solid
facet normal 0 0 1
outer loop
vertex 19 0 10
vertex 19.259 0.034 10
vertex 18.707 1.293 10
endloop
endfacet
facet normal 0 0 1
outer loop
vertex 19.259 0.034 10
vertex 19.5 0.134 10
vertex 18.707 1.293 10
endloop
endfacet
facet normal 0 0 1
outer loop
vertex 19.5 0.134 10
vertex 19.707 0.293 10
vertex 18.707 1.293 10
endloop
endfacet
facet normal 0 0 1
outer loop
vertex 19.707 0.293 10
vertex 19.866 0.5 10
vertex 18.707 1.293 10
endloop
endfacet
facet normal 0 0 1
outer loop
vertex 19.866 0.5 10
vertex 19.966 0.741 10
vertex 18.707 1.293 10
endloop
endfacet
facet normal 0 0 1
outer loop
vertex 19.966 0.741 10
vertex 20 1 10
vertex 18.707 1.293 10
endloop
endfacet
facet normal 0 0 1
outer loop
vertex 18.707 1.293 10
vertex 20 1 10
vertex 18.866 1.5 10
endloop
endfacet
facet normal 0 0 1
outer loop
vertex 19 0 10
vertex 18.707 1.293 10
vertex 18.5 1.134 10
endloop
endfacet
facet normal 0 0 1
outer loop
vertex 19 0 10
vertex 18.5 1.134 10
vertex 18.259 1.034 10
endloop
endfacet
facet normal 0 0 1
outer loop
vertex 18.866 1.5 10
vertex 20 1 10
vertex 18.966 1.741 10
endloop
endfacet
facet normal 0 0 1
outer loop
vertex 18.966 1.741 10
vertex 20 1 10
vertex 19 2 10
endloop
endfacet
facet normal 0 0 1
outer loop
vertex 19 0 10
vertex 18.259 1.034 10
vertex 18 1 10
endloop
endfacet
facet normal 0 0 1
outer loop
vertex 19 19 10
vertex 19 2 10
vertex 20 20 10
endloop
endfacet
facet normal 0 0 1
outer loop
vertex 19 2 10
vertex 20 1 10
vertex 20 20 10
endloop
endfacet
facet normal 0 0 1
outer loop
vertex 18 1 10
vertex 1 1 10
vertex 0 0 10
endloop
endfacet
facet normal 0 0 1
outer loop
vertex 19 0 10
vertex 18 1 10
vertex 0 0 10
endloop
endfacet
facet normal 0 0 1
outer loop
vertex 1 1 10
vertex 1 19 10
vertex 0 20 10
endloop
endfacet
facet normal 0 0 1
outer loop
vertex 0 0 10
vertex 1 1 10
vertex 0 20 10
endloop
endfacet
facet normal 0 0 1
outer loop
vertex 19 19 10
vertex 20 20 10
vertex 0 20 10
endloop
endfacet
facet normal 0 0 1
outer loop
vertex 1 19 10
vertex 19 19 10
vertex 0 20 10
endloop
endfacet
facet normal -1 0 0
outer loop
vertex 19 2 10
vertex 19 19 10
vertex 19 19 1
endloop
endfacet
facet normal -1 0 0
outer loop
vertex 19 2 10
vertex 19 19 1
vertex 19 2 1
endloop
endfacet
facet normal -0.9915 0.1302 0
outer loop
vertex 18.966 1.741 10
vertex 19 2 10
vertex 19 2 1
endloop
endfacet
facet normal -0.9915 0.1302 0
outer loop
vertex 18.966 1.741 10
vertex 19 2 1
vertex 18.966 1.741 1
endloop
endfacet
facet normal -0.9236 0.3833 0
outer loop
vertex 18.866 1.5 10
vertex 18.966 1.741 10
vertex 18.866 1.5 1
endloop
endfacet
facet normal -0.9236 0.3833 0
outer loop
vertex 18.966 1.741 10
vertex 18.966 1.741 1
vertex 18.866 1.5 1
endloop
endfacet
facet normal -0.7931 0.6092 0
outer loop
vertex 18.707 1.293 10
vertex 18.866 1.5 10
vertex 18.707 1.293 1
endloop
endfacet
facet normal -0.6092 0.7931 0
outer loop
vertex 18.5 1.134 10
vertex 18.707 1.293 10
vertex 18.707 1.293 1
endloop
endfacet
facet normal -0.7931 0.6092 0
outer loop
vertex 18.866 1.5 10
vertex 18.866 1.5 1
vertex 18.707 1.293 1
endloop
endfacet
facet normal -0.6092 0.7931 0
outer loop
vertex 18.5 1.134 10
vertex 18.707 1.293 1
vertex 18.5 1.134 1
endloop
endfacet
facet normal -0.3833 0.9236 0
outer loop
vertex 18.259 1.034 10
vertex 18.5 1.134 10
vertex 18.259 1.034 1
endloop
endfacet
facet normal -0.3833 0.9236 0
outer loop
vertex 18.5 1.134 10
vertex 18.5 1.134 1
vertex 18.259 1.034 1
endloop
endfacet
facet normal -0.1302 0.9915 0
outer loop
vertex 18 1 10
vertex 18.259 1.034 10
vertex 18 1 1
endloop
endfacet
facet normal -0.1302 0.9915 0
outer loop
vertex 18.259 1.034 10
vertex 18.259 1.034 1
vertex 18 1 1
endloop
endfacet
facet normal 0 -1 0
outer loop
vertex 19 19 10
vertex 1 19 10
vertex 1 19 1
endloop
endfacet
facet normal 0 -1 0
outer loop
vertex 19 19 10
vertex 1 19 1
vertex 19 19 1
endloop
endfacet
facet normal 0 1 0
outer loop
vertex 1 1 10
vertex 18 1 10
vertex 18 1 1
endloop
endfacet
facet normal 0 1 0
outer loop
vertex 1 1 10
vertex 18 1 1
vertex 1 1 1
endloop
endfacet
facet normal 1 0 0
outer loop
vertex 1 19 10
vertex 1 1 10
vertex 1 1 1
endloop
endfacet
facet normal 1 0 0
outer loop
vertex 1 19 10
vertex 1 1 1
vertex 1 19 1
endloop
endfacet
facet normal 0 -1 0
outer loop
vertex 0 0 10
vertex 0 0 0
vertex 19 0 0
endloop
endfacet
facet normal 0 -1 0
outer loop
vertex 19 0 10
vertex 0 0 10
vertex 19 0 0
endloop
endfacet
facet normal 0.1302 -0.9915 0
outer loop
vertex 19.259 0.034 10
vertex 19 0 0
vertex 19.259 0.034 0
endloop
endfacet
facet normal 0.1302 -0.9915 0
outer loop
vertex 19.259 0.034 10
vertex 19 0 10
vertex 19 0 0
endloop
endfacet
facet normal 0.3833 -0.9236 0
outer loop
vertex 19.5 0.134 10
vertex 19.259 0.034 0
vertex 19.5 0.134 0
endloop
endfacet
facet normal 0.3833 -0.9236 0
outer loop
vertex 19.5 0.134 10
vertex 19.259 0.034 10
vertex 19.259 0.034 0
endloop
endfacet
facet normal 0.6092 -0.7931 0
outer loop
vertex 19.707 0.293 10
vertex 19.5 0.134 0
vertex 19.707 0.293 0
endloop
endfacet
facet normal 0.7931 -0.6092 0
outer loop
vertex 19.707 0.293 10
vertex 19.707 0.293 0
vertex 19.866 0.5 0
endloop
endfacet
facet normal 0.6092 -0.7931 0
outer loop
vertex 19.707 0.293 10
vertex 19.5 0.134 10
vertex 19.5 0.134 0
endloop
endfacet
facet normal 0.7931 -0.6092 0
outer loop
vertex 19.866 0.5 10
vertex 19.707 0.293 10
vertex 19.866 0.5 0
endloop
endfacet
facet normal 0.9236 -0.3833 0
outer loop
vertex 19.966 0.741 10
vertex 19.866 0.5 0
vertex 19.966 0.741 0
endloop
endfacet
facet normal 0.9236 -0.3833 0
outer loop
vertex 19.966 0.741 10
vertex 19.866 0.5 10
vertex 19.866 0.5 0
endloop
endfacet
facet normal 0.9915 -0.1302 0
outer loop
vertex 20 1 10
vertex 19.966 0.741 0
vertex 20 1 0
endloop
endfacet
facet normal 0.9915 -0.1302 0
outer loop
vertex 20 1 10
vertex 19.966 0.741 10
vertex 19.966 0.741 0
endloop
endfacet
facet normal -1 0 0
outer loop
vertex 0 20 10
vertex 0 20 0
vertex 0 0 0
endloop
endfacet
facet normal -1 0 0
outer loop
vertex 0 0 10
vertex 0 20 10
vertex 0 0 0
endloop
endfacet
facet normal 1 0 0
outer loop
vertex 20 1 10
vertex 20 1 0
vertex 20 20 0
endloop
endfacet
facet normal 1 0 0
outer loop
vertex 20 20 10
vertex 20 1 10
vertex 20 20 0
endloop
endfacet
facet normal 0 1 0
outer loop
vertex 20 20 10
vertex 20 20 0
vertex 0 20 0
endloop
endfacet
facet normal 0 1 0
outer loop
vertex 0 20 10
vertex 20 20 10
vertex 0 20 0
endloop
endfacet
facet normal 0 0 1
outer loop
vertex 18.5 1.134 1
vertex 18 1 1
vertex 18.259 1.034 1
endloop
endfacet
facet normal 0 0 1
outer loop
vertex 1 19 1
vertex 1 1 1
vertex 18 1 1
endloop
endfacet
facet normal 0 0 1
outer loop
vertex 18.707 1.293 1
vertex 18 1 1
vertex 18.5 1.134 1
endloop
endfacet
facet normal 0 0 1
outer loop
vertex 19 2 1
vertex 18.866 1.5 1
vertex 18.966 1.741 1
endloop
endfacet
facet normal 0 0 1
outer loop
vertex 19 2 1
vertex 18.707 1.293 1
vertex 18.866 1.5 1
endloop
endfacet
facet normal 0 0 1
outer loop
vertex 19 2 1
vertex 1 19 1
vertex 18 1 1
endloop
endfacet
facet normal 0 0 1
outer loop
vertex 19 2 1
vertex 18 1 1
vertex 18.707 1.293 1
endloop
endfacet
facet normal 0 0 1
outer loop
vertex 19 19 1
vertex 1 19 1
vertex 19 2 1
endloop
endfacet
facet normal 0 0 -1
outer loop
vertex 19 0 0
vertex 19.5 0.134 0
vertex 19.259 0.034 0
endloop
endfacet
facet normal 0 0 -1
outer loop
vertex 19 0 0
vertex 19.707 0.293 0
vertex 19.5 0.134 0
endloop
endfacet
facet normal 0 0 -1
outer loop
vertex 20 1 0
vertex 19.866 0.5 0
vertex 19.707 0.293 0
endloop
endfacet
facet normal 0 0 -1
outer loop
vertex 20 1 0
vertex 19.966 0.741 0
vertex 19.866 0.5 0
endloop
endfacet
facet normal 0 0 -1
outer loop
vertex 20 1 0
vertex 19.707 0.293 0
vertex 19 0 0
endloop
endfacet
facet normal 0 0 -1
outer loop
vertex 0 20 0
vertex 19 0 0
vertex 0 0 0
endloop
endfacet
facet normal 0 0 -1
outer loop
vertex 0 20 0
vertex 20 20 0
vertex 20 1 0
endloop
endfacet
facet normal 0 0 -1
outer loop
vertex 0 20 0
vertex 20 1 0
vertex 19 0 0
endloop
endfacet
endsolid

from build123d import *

# Parameters (mm, degrees)
SKETCH_W     = 20
SKETCH_H     = 20
PAD_DEPTH    = 10
SKETCH001_W  = 18
SKETCH001_H  = 18
POCKET_DEPTH = 9
FILLET_R     = 1
FILLET001_R  = 1


with BuildPart() as part:
    # Sketch → Pad (new body)
    with BuildSketch(Plane.XY):
        with Locations((10, 10)):
            Rectangle(SKETCH_W, SKETCH_H)
    extrude(amount=PAD_DEPTH)

    # Sketch001 → Pocket (cut)
    with BuildSketch(Plane.XY.offset(10)):
        with Locations((10, 10)):
            Rectangle(SKETCH001_W, SKETCH001_H)
    extrude(amount=-POCKET_DEPTH, mode=Mode.SUBTRACT)

    # Fillet
    fillet_edges = [part.edges().sort_by_distance(p)[0] for p in [
        (20, 0, 5),
    ]]
    fillet(fillet_edges, radius=FILLET_R)

    # Fillet001
    fillet001_edges = [part.edges().sort_by_distance(p)[0] for p in [
        (19, 1, 5.5),
    ]]
    fillet(fillet001_edges, radius=FILLET001_R)


solid = part.part
